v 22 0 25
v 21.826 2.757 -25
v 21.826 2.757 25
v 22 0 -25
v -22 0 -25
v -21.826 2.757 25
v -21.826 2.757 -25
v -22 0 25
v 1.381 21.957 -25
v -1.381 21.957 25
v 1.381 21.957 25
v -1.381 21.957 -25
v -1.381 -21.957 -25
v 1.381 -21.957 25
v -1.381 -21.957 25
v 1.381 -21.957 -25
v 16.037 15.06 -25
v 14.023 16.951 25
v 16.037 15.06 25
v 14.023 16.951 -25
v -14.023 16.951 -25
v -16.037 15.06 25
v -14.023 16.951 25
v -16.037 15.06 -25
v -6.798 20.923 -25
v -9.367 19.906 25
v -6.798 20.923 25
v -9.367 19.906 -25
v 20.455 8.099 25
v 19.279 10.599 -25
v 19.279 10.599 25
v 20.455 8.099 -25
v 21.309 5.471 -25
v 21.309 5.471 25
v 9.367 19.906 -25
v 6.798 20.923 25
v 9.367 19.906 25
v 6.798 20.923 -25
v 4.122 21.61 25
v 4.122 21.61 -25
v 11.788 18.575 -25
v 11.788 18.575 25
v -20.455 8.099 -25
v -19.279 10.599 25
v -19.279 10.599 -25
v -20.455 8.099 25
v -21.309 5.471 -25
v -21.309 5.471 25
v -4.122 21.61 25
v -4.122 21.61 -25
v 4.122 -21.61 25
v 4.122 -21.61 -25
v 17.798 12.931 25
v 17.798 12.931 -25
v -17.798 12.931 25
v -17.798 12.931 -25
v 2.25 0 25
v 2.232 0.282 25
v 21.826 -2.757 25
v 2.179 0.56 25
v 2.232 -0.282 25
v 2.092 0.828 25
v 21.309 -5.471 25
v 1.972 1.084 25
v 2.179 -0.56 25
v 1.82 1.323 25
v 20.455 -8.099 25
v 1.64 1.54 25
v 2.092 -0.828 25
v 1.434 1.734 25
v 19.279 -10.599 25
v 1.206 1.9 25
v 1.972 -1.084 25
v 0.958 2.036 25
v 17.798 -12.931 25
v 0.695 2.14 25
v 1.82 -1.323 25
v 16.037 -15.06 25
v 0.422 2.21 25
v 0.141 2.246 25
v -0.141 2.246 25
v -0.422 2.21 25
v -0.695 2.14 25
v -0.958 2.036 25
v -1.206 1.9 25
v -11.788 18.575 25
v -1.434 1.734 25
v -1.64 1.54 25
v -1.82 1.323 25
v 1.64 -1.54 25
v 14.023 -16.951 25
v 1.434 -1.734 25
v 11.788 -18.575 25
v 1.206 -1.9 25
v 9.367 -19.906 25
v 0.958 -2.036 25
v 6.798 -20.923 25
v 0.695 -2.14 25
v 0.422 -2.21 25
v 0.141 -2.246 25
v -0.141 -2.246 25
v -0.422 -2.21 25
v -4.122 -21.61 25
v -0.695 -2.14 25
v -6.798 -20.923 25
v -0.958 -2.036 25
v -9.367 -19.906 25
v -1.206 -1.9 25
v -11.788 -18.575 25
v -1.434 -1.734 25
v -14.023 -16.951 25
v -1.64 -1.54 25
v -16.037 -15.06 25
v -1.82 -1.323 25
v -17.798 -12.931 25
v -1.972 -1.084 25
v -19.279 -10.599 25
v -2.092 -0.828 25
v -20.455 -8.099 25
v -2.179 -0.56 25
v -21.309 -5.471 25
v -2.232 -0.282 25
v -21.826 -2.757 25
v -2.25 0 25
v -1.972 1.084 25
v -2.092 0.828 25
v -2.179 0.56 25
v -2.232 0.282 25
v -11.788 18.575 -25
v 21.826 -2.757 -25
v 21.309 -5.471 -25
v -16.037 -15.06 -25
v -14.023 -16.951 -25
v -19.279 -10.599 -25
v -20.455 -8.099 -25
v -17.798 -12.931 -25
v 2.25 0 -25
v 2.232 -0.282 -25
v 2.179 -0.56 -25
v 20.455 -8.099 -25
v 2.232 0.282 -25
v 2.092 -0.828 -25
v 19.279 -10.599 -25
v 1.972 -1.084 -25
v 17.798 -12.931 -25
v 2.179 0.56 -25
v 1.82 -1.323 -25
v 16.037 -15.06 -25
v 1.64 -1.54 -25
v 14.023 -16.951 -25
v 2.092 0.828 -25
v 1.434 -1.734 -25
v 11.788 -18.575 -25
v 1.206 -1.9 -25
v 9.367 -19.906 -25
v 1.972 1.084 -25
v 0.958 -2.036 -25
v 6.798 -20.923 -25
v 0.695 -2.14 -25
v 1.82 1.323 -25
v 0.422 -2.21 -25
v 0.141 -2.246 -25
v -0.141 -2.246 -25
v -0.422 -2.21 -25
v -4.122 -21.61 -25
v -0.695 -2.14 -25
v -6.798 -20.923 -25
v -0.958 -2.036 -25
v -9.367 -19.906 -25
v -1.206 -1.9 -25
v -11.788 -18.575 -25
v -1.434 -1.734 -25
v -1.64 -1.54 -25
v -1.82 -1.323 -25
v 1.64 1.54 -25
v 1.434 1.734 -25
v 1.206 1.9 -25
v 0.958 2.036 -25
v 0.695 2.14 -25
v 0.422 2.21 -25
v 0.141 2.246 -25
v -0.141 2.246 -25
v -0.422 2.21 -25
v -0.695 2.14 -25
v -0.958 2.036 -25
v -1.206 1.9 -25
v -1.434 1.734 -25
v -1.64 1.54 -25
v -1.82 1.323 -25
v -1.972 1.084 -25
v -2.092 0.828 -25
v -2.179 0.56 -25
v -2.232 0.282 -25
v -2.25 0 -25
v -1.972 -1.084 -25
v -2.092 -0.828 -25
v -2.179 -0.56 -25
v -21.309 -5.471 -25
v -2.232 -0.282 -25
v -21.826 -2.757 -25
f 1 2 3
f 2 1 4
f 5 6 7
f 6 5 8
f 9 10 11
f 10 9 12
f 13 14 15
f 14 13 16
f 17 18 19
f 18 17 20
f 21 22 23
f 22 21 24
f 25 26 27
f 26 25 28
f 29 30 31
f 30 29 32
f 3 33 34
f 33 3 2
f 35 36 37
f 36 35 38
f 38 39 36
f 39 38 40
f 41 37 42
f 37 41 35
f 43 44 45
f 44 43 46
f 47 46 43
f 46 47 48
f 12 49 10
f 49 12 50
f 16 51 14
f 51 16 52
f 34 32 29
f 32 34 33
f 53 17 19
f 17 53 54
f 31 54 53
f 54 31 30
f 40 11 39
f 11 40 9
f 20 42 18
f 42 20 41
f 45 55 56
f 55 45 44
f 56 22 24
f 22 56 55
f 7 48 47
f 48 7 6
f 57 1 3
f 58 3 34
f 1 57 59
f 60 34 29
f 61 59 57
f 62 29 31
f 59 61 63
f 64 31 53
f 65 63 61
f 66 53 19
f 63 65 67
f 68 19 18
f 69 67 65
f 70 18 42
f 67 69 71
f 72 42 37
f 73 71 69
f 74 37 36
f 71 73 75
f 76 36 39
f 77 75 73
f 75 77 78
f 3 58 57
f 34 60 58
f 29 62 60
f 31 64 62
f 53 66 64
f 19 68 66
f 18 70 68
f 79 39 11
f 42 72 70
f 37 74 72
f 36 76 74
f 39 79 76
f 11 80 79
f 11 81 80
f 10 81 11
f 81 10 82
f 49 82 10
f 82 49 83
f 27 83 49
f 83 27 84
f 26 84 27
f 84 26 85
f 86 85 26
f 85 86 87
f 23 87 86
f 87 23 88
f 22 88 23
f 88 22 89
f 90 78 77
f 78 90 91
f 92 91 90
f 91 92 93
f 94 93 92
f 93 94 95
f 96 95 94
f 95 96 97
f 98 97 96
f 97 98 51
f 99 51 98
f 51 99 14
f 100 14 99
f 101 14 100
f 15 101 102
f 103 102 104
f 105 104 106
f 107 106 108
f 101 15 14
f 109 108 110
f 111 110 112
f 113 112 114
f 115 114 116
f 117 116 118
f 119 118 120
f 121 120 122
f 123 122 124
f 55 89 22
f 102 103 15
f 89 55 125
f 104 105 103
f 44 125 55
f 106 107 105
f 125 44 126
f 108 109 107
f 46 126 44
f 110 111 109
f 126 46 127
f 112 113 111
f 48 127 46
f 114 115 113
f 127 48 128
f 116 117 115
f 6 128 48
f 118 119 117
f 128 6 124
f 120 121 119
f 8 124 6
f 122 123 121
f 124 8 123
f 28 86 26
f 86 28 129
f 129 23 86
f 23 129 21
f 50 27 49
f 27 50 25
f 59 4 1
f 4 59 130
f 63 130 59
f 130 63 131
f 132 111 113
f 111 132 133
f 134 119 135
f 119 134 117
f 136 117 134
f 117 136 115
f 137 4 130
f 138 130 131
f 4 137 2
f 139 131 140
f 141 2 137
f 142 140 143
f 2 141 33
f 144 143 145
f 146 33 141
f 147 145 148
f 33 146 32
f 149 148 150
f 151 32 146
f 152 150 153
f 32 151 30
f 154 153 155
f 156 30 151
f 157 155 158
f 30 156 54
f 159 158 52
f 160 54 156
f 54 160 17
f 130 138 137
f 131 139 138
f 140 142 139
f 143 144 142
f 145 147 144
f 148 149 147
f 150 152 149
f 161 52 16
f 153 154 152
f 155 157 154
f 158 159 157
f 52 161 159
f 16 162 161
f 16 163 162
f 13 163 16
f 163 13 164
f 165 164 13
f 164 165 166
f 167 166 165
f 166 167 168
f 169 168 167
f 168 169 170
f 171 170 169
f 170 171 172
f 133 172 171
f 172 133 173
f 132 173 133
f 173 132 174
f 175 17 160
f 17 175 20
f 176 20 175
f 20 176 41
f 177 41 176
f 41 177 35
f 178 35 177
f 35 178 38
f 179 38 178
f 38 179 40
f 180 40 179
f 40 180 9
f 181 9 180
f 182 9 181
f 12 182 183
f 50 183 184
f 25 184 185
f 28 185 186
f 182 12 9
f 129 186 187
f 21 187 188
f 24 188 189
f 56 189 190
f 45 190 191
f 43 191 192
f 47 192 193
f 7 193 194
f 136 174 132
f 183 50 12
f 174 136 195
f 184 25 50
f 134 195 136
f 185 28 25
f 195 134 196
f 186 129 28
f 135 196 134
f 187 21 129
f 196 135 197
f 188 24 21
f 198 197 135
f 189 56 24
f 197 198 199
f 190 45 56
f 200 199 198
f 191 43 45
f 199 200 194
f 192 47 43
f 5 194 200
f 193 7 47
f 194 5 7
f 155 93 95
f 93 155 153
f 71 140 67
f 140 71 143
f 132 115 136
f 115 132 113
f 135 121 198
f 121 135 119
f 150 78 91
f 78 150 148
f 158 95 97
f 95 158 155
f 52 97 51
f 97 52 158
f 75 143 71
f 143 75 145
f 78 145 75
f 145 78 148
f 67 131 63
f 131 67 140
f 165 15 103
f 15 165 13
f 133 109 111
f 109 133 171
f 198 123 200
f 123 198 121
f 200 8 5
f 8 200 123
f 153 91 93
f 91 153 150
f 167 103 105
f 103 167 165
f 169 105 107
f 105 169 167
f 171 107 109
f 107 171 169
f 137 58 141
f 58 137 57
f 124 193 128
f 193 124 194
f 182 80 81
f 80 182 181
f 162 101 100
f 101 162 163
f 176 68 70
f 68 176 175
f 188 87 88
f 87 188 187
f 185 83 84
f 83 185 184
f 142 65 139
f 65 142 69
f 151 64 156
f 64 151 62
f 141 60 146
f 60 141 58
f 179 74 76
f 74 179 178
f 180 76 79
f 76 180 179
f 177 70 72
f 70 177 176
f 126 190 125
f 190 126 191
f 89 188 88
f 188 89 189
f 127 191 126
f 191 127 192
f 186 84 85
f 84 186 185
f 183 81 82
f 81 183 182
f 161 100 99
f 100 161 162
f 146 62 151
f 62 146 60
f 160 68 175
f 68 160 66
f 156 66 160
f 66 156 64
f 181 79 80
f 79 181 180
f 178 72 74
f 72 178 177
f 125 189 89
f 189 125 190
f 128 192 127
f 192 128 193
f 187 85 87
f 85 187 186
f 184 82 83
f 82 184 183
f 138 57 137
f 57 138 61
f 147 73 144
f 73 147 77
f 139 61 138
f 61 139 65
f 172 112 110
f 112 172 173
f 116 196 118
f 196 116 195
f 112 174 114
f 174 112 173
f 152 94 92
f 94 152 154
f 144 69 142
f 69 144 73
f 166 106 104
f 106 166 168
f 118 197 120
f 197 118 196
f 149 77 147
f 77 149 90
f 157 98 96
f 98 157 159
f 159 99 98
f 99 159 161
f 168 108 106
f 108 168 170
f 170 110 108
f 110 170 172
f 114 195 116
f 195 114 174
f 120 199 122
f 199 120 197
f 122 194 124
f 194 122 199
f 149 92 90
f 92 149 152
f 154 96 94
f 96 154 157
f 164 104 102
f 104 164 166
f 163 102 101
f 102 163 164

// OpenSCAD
$fn = 50;


difference() {
	union() {
		translate(v = [0, 0, -25.0000000000]) {
			cylinder(h = 50, r = 22.0000000000);
		}
	}
	union() {
		translate(v = [0, 0, -100.0000000000]) {
			cylinder(h = 200, r = 2.2500000000);
		}
	}
}
